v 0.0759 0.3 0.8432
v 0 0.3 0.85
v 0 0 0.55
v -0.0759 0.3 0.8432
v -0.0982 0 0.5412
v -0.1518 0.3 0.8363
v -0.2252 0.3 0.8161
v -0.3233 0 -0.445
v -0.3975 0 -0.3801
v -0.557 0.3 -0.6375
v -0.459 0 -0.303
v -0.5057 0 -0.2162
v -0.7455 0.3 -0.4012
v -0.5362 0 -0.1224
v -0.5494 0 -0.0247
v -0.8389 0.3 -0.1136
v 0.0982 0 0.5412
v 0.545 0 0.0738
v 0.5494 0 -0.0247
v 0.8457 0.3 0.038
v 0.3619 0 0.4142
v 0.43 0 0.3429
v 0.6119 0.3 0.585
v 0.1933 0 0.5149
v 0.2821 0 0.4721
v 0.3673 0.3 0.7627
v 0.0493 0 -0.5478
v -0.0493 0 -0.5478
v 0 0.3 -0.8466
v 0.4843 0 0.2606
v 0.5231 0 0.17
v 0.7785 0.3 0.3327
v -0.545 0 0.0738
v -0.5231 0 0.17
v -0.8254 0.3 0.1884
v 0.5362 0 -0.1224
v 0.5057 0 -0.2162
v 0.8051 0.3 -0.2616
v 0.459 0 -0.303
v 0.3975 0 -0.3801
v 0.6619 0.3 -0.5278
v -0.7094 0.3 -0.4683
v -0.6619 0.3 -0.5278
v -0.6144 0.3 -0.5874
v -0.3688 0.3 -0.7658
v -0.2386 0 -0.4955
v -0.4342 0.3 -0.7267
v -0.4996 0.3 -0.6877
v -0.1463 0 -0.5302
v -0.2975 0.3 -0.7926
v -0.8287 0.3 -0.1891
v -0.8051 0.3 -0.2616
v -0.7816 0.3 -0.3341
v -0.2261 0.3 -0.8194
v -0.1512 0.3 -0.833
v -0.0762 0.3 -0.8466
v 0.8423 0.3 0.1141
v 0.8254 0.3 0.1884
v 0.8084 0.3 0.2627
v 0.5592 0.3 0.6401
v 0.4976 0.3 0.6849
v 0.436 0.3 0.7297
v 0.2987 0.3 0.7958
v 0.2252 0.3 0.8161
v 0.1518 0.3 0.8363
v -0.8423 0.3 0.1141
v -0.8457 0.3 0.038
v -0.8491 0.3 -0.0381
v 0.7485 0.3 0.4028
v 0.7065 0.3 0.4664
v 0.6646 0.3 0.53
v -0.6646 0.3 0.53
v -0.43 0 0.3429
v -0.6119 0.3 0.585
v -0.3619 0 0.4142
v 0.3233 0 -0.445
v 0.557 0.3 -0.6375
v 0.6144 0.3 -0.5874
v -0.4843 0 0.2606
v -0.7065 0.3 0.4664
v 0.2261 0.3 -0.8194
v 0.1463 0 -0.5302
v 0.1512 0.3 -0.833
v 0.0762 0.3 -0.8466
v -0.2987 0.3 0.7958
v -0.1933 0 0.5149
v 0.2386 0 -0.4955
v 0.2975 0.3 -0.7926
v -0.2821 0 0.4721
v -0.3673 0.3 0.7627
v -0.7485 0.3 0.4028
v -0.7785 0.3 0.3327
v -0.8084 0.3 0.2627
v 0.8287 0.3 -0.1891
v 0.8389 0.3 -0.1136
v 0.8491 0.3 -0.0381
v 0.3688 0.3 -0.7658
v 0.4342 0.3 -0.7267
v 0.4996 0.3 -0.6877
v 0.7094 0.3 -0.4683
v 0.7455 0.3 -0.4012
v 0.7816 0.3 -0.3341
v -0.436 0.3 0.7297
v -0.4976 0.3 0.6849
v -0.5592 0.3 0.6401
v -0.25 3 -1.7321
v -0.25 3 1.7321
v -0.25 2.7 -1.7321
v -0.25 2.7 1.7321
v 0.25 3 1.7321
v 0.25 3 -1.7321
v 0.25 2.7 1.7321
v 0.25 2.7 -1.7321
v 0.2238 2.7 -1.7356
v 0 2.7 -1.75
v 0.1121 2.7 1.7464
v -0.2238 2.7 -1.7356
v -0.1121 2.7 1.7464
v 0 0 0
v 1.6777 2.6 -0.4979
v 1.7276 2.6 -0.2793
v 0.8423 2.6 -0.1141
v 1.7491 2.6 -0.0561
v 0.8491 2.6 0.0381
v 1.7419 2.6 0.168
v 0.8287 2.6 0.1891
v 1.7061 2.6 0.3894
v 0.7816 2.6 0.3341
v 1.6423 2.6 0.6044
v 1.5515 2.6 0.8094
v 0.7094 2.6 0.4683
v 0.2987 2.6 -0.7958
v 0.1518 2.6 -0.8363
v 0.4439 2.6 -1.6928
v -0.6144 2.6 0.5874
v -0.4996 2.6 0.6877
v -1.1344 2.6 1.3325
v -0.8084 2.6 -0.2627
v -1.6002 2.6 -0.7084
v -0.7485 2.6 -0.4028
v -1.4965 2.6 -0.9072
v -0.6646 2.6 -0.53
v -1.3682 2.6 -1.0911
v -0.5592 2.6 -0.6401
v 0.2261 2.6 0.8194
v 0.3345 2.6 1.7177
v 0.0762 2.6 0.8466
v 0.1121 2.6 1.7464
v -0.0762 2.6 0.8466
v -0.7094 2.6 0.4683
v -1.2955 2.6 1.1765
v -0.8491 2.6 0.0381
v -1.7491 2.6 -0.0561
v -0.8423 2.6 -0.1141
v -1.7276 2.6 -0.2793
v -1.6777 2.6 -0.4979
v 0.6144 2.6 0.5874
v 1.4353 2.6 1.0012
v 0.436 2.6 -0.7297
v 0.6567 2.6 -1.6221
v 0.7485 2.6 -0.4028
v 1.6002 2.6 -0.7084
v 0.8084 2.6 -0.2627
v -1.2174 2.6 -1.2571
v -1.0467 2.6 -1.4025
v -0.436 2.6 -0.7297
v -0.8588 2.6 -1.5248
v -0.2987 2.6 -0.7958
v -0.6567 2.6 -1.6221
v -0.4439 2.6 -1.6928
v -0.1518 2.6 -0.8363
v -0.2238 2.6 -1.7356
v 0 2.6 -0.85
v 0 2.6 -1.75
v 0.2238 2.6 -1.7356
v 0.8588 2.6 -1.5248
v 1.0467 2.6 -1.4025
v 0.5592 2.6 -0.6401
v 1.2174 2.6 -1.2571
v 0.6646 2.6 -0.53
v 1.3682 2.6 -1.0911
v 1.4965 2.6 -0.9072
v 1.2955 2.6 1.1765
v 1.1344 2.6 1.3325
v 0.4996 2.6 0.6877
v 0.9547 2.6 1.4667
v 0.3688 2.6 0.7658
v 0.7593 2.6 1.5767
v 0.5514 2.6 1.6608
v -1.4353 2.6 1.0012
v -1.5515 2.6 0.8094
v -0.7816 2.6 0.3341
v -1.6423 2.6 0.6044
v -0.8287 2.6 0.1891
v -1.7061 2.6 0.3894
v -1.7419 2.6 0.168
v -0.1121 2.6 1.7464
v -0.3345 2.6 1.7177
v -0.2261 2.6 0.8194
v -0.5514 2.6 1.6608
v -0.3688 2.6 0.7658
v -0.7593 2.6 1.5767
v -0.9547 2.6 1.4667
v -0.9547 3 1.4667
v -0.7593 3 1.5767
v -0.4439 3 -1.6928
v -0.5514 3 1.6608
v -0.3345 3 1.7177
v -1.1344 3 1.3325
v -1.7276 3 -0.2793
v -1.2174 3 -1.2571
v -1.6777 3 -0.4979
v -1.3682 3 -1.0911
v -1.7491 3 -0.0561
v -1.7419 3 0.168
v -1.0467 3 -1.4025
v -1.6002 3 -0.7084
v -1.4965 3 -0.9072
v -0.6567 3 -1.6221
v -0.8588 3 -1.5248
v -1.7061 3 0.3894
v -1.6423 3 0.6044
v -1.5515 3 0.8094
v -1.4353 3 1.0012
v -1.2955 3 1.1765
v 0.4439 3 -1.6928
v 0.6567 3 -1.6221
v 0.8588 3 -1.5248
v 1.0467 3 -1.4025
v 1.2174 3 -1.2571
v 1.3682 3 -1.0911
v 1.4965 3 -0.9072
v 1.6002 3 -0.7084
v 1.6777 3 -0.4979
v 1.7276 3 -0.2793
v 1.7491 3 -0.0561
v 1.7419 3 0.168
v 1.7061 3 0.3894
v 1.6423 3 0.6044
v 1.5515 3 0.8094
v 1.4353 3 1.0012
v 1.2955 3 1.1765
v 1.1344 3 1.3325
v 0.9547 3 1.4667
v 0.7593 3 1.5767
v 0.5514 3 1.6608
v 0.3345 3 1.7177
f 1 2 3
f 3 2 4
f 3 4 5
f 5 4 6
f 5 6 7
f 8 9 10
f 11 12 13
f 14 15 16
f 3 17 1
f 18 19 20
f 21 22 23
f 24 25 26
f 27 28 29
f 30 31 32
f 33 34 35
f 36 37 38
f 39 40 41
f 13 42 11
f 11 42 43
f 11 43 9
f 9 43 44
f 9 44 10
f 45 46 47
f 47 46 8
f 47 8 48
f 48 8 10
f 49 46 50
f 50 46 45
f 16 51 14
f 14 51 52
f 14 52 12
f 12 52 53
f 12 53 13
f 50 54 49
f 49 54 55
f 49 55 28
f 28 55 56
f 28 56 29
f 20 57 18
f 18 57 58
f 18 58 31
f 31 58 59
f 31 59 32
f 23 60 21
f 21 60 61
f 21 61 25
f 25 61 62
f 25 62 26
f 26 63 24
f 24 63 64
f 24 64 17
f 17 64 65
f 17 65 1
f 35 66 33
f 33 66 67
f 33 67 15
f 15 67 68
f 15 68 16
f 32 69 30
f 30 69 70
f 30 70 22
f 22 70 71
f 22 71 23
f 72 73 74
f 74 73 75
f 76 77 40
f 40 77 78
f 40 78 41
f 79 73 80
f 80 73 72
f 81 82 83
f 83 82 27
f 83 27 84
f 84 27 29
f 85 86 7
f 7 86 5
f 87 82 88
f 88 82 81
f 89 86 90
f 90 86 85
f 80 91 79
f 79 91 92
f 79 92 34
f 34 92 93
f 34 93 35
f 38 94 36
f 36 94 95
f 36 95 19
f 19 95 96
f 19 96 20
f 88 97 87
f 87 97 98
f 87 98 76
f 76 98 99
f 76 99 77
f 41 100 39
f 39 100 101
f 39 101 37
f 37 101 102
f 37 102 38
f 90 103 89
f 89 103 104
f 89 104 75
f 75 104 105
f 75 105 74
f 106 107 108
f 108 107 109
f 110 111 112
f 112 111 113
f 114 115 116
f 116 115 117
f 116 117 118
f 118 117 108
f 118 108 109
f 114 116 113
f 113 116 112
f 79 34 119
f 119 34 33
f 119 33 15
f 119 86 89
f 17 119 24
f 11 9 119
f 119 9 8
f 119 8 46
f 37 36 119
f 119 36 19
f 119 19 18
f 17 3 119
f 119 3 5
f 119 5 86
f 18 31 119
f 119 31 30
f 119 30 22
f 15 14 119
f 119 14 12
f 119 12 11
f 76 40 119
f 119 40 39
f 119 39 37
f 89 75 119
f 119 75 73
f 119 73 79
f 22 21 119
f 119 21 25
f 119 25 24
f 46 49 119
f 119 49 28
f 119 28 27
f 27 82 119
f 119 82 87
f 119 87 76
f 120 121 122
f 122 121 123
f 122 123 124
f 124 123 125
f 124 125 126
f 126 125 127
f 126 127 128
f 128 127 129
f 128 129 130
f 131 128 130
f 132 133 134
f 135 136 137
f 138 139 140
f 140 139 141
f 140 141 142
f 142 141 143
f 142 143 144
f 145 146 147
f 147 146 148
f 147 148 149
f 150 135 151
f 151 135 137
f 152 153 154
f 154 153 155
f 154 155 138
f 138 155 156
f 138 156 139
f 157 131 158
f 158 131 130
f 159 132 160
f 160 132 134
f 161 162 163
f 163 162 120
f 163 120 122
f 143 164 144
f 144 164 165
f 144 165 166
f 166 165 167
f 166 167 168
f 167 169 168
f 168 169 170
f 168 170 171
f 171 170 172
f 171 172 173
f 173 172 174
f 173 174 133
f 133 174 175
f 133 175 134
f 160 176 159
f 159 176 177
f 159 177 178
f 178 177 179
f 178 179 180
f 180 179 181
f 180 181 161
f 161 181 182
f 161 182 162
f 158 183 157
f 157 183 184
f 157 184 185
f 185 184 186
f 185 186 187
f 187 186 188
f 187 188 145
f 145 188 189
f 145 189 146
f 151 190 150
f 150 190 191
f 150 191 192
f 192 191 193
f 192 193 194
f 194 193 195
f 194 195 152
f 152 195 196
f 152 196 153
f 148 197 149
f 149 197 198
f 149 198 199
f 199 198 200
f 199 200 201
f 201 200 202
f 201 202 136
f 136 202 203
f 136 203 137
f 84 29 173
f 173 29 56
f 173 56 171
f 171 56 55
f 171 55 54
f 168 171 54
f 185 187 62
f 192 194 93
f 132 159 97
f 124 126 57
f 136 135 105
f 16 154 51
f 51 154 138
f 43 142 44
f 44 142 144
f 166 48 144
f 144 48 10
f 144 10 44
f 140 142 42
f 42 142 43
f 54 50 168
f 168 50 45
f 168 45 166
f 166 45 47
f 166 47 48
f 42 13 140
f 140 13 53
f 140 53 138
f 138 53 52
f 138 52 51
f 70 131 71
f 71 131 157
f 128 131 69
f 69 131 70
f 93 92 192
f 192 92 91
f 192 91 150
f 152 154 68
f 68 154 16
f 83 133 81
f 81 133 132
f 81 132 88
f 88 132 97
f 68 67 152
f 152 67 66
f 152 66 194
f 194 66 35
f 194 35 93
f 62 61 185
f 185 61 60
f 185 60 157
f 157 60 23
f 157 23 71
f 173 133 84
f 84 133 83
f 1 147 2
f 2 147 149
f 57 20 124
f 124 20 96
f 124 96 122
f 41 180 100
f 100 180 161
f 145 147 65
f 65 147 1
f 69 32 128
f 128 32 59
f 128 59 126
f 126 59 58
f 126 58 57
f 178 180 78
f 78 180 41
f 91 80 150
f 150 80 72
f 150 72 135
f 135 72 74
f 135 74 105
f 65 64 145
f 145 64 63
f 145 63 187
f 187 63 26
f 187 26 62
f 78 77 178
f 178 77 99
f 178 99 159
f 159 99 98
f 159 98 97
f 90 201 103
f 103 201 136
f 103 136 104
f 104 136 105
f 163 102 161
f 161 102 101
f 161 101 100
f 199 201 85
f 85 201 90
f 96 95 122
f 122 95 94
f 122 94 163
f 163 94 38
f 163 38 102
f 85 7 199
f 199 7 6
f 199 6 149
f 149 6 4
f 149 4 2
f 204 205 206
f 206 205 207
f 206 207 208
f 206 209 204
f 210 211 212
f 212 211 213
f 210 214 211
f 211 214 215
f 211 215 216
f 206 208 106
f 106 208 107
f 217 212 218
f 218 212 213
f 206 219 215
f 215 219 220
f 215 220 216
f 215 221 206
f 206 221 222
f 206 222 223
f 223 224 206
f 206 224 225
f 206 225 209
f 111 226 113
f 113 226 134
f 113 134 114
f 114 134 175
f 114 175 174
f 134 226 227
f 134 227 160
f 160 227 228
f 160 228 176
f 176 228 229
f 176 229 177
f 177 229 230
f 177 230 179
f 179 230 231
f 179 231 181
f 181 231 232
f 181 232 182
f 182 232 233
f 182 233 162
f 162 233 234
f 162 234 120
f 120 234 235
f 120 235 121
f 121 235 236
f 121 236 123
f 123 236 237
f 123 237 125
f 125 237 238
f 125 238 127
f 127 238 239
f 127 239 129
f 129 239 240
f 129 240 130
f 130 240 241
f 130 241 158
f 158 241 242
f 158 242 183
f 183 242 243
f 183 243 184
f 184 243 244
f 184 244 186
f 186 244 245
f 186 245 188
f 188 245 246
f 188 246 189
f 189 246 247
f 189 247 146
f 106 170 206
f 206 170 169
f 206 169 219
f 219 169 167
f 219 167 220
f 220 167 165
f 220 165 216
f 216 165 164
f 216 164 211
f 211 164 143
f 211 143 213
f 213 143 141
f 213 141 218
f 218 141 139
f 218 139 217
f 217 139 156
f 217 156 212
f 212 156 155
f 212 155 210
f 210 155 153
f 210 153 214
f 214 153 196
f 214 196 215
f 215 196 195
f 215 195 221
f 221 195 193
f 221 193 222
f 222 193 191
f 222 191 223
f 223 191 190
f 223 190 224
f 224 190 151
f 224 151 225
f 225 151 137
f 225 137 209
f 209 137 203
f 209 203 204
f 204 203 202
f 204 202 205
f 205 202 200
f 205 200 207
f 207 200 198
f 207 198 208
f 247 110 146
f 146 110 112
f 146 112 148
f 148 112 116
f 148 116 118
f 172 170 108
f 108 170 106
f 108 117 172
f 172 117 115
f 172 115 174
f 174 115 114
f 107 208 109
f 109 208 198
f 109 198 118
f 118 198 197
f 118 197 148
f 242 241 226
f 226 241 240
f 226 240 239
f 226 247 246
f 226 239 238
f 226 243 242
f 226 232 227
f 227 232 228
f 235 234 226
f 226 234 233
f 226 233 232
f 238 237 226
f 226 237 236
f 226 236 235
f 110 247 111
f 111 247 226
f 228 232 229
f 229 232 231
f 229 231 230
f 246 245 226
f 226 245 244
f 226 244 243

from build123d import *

# Parameters (mm, degrees)
SKETCH1_R           = 1.75
BOSS_EXTRUDE1_DEPTH = 3
SKETCH2_W           = 0.9
SKETCH2_H           = 2.6
SKETCH3_W           = 0.5
SKETCH3_H           = 3.7
CUT_EXTRUDE1_DEPTH  = 0.3
CHAMFER1_SIZE       = 0.3


with BuildPart() as part:
    # Sketch1 → Boss-Extrude1 (new body)
    with BuildSketch(Plane(origin=(0, 0, 0), x_dir=(1, 0, 0), z_dir=(0, 1, 0))):
        Circle(SKETCH1_R)
    extrude(amount=BOSS_EXTRUDE1_DEPTH)

    # Sketch2 → Cut-Revolve1 (revolve, cut)
    with BuildSketch(Plane.XY):
        with Locations((1.3, 1.3)):
            Rectangle(SKETCH2_W, SKETCH2_H)
    revolve(axis=Axis((0, 0, 0), (0, 1, 0)), mode=Mode.SUBTRACT)

    # Sketch3 → Cut-Extrude1 (cut)
    with BuildSketch(Plane(origin=(0, 3, 0), x_dir=(1, 0, 0), z_dir=(0, 1, 0))):
        Rectangle(SKETCH3_W, SKETCH3_H)
    extrude(amount=-CUT_EXTRUDE1_DEPTH, mode=Mode.SUBTRACT)

    # Chamfer1
    chamfer1_edges = [part.edges().sort_by_distance(p)[0] for p in [
        (-0.85, 0, 0),
    ]]
    chamfer(chamfer1_edges, length=CHAMFER1_SIZE)


solid = part.part
